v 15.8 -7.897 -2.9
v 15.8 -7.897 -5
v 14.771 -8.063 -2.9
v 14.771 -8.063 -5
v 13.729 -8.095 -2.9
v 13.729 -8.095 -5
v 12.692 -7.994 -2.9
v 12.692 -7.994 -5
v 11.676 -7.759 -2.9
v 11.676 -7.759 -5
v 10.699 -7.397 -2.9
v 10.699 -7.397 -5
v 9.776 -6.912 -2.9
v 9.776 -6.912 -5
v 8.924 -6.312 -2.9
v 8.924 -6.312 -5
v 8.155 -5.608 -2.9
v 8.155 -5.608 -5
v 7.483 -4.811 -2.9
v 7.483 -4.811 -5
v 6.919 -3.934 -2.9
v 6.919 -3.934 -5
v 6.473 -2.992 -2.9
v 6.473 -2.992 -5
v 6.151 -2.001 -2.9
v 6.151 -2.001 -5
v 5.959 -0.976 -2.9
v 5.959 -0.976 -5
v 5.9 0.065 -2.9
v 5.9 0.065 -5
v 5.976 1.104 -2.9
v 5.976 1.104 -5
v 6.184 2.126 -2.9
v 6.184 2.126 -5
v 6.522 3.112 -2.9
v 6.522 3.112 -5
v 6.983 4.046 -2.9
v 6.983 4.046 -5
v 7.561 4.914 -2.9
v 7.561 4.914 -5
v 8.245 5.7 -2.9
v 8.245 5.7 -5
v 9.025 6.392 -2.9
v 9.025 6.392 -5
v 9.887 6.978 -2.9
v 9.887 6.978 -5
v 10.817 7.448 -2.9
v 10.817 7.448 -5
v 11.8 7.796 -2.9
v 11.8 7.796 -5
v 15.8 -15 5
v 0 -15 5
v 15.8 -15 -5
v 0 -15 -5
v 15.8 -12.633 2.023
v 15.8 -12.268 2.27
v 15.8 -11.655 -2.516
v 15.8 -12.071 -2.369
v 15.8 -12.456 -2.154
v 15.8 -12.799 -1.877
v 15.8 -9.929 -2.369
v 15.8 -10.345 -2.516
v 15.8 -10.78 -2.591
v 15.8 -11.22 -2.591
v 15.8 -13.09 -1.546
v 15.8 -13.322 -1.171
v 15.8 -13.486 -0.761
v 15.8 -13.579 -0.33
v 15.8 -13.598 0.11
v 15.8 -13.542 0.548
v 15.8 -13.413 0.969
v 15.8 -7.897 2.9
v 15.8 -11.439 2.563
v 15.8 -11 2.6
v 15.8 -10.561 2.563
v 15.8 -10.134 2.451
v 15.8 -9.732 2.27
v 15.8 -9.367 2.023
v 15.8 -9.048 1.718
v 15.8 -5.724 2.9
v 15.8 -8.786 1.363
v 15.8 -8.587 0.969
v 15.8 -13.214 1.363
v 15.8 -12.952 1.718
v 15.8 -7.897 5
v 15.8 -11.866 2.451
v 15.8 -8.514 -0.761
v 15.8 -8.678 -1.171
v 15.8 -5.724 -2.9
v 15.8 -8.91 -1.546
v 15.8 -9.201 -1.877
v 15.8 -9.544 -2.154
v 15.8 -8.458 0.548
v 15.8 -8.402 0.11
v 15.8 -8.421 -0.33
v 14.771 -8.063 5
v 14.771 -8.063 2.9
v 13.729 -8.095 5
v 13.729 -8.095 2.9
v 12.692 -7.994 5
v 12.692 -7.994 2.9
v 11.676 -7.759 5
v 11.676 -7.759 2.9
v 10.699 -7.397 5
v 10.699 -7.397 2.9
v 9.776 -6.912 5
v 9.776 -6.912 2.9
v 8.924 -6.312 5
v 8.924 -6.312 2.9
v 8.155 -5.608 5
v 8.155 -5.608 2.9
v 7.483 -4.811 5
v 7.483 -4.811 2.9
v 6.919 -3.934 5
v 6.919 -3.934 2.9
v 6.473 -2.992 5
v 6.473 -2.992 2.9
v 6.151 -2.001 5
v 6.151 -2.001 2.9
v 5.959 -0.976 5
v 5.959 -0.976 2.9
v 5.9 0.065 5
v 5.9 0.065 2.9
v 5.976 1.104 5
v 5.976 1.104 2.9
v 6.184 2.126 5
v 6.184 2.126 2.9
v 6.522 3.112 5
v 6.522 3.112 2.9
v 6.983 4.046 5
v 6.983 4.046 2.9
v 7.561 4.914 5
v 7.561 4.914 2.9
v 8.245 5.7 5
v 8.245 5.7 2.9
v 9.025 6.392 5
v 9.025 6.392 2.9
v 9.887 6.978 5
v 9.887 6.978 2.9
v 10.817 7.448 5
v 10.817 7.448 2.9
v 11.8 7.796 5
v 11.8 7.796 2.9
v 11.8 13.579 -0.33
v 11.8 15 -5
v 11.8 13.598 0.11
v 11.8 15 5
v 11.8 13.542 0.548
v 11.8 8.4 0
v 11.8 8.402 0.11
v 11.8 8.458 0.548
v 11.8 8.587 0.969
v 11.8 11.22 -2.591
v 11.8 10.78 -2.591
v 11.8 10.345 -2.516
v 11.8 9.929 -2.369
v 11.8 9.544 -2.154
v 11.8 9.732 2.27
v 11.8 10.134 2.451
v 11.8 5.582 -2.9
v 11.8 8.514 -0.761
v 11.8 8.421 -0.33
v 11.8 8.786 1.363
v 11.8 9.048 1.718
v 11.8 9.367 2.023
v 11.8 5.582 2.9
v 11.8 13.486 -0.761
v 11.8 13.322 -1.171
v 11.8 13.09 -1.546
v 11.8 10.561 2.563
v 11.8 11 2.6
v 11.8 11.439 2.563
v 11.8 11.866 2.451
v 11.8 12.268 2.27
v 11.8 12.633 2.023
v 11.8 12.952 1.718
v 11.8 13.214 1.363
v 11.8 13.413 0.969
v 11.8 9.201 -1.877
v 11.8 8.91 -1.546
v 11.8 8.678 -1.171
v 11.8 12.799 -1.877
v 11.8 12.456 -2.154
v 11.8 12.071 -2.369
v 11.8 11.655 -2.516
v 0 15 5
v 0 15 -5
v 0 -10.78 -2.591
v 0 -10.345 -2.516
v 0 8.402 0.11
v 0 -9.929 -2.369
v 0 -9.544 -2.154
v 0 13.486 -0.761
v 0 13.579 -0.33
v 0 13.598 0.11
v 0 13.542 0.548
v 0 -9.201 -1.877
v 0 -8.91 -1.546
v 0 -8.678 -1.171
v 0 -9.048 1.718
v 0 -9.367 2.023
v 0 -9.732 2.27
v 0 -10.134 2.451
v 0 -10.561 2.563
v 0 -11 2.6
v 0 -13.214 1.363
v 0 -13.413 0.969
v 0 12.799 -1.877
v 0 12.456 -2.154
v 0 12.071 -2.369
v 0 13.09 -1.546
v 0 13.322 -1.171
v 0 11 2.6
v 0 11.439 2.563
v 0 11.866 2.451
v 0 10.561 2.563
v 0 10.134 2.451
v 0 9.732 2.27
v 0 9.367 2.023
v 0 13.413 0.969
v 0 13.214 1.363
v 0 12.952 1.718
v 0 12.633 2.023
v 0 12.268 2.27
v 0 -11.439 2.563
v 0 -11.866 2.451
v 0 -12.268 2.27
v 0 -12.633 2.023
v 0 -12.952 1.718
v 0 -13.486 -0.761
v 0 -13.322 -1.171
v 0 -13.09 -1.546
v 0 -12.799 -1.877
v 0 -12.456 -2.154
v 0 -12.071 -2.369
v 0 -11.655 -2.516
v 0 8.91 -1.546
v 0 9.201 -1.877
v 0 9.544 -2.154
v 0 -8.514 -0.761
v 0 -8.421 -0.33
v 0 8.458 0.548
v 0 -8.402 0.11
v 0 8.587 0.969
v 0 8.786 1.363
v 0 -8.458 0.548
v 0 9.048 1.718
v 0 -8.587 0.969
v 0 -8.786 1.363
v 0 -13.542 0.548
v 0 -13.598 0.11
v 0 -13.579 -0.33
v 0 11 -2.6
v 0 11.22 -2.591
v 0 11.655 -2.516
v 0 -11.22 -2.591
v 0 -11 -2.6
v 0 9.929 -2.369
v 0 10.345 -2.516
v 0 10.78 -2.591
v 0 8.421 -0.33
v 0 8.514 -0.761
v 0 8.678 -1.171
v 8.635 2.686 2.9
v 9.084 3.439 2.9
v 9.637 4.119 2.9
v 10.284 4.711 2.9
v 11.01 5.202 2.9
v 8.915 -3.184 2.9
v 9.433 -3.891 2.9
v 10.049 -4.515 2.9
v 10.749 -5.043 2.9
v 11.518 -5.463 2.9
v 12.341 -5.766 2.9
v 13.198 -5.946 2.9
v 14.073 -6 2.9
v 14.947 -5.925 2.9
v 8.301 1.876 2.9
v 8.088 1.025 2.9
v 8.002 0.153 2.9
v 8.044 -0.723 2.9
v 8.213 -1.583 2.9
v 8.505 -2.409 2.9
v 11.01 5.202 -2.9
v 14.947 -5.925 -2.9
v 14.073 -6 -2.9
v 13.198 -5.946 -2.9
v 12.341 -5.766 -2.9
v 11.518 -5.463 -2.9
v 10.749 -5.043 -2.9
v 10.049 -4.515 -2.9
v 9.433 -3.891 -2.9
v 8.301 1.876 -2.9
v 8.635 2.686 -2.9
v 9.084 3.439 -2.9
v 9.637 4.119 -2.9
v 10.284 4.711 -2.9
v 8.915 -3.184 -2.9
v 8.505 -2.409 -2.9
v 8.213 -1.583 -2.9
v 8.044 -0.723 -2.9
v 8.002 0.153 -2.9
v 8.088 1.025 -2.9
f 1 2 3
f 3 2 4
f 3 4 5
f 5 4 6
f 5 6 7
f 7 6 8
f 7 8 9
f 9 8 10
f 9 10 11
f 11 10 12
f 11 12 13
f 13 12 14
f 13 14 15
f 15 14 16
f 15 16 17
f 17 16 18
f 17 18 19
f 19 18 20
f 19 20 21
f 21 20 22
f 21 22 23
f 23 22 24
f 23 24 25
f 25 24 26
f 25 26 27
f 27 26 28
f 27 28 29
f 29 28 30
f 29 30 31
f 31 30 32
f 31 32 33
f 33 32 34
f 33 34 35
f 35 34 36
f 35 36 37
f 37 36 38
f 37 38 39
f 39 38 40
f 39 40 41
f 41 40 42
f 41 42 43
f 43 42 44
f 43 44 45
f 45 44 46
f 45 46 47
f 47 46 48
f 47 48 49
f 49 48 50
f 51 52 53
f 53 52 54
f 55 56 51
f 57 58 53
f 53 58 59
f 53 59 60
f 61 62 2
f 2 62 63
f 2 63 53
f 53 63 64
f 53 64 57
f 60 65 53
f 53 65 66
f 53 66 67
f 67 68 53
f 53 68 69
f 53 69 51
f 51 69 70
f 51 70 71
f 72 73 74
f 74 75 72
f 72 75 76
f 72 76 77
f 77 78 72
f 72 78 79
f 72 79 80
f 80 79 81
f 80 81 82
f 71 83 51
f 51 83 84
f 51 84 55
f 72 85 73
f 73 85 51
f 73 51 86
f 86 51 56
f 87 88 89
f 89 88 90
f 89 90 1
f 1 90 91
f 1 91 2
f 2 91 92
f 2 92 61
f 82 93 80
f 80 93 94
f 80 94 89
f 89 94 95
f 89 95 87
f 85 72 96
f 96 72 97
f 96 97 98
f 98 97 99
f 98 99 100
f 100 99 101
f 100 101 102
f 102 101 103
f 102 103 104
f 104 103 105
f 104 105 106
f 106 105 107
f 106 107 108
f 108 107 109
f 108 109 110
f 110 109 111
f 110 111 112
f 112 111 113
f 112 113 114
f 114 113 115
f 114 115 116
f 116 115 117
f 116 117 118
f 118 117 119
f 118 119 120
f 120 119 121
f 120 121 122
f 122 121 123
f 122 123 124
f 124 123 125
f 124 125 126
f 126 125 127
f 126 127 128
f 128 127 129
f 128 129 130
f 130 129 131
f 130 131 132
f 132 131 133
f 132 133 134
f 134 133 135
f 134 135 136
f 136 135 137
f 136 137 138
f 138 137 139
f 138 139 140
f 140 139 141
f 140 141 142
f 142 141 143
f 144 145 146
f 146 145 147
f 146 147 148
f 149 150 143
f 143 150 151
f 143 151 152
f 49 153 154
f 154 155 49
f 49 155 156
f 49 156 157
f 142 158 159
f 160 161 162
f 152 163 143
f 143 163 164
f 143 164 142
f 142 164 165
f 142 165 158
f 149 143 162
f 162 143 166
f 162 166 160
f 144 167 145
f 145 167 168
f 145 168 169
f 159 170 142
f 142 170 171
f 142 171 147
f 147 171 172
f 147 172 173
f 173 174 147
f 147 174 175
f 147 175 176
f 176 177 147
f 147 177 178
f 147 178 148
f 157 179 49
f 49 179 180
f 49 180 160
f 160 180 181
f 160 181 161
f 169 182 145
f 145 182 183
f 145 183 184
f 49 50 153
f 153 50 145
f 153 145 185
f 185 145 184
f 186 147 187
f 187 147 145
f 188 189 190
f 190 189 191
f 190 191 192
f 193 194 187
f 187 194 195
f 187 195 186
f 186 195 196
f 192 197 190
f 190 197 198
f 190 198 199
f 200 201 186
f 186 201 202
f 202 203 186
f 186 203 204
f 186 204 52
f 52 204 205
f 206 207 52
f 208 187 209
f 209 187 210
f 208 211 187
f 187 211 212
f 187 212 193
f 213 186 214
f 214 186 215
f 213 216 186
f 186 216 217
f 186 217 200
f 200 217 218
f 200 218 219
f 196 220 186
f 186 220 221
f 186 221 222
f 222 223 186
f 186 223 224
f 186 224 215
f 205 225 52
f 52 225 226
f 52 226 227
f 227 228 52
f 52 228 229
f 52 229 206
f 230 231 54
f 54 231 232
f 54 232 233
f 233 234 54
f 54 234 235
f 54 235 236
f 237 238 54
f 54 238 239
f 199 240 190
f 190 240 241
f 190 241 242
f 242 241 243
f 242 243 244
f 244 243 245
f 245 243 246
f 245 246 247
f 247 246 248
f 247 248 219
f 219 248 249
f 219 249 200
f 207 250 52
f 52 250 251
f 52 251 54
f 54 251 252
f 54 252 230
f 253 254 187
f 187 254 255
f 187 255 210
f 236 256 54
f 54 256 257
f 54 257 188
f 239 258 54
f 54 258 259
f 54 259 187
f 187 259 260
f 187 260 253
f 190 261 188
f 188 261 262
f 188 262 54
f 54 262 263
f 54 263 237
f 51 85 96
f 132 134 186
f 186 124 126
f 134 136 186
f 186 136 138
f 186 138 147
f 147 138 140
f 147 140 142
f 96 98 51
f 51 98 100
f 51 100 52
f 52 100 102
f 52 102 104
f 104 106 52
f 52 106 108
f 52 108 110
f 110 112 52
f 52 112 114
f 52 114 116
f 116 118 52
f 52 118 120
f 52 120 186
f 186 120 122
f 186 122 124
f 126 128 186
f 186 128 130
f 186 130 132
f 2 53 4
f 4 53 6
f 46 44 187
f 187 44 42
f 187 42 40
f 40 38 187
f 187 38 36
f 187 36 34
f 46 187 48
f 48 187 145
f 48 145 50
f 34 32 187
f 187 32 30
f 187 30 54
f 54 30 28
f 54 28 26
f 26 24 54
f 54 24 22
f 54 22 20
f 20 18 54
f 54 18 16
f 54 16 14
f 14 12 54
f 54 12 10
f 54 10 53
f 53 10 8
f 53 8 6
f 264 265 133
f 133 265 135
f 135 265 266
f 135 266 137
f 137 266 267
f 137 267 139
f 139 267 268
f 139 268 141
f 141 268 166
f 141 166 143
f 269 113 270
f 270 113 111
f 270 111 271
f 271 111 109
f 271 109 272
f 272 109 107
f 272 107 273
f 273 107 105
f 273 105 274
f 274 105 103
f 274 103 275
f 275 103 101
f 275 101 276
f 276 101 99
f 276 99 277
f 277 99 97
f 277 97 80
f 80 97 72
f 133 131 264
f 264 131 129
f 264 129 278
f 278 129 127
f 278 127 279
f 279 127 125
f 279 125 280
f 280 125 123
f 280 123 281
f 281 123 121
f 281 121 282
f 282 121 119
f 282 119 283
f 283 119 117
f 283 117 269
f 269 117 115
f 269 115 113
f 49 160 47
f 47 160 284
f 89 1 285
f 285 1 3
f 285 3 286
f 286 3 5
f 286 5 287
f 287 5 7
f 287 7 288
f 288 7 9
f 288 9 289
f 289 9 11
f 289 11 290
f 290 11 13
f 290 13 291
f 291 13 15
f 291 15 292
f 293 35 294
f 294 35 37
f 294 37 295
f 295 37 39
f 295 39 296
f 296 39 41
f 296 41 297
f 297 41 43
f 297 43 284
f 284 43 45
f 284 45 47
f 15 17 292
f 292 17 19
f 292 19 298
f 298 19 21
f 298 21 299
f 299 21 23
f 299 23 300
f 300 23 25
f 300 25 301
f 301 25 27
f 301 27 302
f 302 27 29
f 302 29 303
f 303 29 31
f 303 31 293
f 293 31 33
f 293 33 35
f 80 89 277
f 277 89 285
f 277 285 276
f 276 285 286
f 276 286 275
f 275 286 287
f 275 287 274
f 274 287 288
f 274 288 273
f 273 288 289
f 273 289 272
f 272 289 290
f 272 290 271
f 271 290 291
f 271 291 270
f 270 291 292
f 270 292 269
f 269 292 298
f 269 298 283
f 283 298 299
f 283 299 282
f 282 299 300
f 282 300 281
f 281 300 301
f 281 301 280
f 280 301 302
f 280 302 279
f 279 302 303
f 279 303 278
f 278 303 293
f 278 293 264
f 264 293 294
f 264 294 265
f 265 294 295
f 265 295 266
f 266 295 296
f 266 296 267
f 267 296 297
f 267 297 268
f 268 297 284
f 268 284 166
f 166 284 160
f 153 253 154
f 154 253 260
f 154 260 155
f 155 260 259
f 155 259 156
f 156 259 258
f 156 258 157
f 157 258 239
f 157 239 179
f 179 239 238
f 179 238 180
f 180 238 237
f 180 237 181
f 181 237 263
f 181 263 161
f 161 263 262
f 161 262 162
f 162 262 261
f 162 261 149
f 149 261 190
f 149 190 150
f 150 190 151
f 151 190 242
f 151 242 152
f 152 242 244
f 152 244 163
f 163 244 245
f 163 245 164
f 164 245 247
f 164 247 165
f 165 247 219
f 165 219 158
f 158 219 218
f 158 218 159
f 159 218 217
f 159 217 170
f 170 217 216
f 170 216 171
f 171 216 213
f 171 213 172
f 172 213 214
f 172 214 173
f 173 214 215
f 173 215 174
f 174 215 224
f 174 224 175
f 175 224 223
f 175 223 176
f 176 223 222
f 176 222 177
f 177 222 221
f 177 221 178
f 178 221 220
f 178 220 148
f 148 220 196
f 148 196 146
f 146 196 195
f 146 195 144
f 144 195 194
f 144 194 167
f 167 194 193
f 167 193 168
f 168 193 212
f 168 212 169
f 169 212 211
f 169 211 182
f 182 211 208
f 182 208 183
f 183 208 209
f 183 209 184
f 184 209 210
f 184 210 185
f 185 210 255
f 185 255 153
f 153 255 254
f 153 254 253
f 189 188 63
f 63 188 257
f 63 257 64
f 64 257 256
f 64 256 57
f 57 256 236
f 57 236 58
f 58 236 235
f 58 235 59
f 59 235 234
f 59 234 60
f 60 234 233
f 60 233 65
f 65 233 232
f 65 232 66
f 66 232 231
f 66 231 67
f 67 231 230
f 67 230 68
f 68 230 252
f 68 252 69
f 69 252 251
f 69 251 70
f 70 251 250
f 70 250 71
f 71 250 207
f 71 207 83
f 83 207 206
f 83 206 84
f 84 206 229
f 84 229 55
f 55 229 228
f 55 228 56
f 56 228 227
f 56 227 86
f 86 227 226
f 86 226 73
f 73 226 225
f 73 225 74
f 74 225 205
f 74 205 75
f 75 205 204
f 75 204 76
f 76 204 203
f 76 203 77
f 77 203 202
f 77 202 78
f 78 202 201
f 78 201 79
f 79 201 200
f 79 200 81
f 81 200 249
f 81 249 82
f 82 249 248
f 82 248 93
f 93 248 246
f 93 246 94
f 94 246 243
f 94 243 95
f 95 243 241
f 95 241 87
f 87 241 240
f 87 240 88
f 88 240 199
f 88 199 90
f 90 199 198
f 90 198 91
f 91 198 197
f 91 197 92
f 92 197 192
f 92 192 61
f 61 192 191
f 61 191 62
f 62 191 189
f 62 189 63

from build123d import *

# Parameters (mm, degrees)
BOSS_EXTRUDE2_DEPTH = 5
BOSS_EXTRUDE3_DEPTH = 2.9
CUT_EXTRUDE1_REACH  = 24.353
SKETCH5_R           = 2.6


with BuildPart() as part:
    # Sketch3 → Boss-Extrude2 (new, symmetric)
    with BuildSketch(Plane.XY):
        with BuildLine():
            Line((0, -15), (0, 15))
            Line((0, 15), (11.8, 15))
            Line((11.8, 15), (11.8, 7.795511529))
            ThreePointArc((11.8, 7.795511529), (6.150961765, -2.000649589), (15.8, -7.897467949))
            Line((15.8, -7.897467949), (15.8, -15))
            Line((15.8, -15), (0, -15))
        make_face()
    extrude(amount=BOSS_EXTRUDE2_DEPTH, both=True)

    # Sketch4 → Boss-Extrude3 (add, symmetric)
    with BuildSketch(Plane.XY):
        with BuildLine():
            Line((11.8, 8.21035931), (11.8, 5.582114295))
            ThreePointArc((11.8, 5.582114295), (8.343588332, -2.001251369), (15.8, -5.723635209))
            Line((15.8, -5.723635209), (15.8, -8.30722577))
            ThreePointArc((15.8, -8.30722577), (5.738786153, -2.000586358), (11.8, 8.21035931))
        make_face()
    extrude(amount=BOSS_EXTRUDE3_DEPTH, both=True)

    # Sketch5 → Cut-Extrude1 (cut, up to next)
    with BuildSketch(Plane(origin=(0, 0, 0), x_dir=(0, 0, -1), z_dir=(1, 0, 0)), mode=Mode.PRIVATE) as cut_extrude1_sk1:
        with Locations(Location((0, 11, 0), (0, 0, 270))):
            Circle(SKETCH5_R)
    cut_extrude1_tool1 = extrude(cut_extrude1_sk1.sketch, amount=CUT_EXTRUDE1_REACH, mode=Mode.PRIVATE) & part.part
    # Sketch5 → Cut-Extrude1 (cut, up to next)
    with BuildSketch(Plane(origin=(0, 0, 0), x_dir=(0, 0, -1), z_dir=(1, 0, 0)), mode=Mode.PRIVATE) as cut_extrude1_sk2:
        with Locations(Location((0, -11, 0), (0, 0, 180))):
            Circle(SKETCH5_R)
    cut_extrude1_tool2 = extrude(cut_extrude1_sk2.sketch, amount=CUT_EXTRUDE1_REACH, mode=Mode.PRIVATE) & part.part
    add(cut_extrude1_tool1.solids().sort_by_distance((0, 11, 0))[0], mode=Mode.SUBTRACT)
    add(cut_extrude1_tool2.solids().sort_by_distance((0, -11, 0))[0], mode=Mode.SUBTRACT)


solid = part.part
